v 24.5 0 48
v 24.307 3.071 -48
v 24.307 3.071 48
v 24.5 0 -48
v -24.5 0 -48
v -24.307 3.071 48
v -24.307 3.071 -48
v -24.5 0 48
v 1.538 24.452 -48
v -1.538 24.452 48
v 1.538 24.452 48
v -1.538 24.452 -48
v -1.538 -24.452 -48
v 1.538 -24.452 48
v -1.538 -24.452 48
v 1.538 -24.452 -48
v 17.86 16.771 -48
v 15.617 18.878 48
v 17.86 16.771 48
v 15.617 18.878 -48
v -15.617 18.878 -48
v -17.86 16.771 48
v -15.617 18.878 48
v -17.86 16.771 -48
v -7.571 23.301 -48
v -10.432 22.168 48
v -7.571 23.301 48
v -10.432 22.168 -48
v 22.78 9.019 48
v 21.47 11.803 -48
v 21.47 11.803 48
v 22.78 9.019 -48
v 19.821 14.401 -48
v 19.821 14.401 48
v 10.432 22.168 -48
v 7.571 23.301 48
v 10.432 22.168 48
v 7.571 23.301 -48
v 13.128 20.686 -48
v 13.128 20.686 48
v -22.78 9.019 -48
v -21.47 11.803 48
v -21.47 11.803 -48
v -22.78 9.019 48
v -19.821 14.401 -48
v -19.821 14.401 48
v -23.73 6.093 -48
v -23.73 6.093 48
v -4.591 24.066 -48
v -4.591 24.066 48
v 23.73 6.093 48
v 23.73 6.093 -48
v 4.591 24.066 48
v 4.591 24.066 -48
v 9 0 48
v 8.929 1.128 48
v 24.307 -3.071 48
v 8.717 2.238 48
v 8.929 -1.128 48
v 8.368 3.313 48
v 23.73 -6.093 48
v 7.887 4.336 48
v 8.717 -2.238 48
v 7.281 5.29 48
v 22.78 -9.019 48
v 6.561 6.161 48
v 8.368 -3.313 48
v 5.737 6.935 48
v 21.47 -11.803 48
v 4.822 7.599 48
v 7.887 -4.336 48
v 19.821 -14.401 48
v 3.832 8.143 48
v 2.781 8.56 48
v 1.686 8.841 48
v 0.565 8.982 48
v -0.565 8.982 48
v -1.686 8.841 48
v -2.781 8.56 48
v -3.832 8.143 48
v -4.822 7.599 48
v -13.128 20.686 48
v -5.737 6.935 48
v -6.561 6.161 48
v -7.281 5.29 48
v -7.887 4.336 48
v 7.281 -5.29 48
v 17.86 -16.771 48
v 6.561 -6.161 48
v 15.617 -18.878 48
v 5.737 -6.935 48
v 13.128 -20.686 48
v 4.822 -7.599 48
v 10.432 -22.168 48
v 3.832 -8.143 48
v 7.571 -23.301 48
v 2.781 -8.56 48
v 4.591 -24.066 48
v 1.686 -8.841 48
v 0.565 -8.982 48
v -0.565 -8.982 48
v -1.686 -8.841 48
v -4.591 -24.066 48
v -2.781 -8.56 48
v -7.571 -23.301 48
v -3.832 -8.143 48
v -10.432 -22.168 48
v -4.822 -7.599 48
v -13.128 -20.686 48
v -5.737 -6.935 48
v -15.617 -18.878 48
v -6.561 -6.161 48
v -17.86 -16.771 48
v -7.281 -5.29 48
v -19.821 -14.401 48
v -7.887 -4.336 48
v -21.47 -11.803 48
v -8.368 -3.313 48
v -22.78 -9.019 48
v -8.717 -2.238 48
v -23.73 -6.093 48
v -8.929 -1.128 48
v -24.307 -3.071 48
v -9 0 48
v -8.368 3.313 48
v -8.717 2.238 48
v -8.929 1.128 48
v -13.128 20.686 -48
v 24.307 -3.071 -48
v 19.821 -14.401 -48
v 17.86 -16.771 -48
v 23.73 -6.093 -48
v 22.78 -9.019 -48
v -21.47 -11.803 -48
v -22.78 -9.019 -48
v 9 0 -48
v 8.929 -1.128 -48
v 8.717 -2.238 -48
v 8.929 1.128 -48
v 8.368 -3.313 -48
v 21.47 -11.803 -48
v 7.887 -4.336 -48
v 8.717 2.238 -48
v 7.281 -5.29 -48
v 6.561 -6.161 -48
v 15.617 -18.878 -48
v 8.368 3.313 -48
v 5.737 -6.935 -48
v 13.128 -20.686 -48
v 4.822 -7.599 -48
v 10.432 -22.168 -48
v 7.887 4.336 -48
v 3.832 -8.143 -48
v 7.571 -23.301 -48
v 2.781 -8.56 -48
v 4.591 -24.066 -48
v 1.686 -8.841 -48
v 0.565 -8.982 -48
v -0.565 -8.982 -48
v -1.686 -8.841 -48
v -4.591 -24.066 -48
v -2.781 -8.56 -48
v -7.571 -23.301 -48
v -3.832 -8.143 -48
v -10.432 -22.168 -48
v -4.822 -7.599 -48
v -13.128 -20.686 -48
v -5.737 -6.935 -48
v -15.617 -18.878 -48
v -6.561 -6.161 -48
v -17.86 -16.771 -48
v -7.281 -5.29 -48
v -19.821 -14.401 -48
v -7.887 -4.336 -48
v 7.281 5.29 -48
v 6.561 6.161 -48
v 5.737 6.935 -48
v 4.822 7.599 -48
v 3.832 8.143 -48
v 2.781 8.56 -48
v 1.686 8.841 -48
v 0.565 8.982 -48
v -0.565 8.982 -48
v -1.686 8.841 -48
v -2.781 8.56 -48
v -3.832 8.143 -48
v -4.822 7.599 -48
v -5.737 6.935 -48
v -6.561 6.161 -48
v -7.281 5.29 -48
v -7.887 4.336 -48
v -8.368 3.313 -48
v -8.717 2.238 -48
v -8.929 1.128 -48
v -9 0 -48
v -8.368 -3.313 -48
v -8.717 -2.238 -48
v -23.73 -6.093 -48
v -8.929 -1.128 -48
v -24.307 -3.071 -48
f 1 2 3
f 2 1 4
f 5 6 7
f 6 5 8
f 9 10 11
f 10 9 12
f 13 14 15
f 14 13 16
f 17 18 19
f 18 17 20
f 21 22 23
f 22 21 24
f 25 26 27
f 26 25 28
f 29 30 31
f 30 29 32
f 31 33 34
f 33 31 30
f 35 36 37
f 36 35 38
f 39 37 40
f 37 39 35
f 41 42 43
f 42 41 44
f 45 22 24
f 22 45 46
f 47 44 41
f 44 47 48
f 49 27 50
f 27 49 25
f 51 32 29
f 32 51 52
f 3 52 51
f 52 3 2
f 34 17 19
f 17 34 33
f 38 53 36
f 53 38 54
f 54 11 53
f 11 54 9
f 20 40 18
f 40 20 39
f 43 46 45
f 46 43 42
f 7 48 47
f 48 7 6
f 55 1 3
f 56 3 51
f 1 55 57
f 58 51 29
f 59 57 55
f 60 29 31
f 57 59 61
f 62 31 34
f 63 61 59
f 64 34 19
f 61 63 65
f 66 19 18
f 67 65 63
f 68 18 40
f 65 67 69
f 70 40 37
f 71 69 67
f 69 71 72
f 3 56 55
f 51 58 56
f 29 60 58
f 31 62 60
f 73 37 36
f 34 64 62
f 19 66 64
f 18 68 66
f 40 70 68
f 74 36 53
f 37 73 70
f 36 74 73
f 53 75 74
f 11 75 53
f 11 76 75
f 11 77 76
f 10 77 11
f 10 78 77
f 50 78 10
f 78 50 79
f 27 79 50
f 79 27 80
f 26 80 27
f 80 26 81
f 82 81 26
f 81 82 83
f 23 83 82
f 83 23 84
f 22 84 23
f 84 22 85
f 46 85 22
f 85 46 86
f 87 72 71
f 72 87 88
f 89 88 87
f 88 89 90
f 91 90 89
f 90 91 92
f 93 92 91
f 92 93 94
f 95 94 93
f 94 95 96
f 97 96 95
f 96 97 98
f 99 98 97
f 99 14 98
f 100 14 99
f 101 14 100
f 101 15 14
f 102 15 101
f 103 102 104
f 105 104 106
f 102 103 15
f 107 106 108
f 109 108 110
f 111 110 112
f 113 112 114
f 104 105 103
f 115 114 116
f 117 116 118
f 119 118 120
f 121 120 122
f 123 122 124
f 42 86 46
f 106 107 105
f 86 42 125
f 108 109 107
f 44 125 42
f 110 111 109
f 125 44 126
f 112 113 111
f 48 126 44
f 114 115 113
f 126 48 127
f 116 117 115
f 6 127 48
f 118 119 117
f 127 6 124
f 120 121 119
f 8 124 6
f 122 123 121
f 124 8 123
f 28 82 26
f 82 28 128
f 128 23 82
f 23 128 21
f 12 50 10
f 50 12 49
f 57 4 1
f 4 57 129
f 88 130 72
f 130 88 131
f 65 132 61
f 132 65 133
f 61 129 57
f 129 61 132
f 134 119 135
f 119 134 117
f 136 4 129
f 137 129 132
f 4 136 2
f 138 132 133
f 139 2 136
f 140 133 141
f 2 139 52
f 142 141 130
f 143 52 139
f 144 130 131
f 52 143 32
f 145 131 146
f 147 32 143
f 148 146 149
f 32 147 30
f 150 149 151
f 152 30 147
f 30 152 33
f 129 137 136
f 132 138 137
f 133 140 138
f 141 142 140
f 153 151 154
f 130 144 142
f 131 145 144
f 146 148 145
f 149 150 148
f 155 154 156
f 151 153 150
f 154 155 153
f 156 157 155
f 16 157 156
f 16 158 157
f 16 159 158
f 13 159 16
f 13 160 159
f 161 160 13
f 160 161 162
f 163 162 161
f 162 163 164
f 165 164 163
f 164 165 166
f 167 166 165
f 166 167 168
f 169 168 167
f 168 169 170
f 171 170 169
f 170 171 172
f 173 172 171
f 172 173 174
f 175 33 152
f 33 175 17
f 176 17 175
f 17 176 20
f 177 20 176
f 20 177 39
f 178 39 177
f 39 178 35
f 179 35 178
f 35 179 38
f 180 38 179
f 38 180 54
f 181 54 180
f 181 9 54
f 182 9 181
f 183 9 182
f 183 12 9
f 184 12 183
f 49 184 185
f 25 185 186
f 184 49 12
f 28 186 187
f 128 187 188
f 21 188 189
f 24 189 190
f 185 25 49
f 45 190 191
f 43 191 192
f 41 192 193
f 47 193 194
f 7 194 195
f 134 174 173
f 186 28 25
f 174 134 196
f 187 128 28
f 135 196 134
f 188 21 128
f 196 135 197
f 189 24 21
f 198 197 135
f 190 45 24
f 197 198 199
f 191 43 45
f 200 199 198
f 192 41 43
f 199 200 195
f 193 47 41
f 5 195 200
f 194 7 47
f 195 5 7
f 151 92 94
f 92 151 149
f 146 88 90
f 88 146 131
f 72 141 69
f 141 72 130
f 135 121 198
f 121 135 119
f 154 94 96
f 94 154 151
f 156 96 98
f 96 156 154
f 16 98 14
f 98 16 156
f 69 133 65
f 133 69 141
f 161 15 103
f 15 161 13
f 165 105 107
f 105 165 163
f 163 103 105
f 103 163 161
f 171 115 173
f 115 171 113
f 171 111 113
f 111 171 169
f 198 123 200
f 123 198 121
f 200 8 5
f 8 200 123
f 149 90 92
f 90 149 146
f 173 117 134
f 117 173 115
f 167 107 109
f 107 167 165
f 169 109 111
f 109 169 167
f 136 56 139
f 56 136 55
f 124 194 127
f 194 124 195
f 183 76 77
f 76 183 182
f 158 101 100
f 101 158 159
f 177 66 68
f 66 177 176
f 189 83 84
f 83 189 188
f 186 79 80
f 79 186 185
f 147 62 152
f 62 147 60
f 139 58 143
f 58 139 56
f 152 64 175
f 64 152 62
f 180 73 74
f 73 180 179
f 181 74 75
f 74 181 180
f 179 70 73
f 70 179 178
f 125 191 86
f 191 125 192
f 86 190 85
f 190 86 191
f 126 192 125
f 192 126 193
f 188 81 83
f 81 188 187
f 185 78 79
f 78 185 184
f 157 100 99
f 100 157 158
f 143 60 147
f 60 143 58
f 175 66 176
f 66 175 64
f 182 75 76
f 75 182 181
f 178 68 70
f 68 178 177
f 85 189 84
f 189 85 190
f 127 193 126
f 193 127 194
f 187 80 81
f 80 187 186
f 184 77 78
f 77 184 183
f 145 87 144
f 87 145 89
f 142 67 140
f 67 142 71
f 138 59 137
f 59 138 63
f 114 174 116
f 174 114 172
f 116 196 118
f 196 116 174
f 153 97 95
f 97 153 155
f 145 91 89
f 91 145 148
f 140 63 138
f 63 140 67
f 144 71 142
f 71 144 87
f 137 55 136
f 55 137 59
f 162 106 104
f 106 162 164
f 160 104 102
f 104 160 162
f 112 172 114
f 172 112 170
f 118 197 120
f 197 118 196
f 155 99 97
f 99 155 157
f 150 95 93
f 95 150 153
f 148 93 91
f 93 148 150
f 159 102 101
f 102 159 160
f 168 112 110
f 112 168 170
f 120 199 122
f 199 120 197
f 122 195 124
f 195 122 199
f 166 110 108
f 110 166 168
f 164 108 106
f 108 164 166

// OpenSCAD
$fn = 50;


difference() {
	union() {
		translate(v = [0, 0, -48.0000000000]) {
			cylinder(h = 96, r = 24.5000000000);
		}
	}
	union() {
		translate(v = [0, 0, -100.0000000000]) {
			cylinder(h = 200, r = 9);
		}
	}
}
